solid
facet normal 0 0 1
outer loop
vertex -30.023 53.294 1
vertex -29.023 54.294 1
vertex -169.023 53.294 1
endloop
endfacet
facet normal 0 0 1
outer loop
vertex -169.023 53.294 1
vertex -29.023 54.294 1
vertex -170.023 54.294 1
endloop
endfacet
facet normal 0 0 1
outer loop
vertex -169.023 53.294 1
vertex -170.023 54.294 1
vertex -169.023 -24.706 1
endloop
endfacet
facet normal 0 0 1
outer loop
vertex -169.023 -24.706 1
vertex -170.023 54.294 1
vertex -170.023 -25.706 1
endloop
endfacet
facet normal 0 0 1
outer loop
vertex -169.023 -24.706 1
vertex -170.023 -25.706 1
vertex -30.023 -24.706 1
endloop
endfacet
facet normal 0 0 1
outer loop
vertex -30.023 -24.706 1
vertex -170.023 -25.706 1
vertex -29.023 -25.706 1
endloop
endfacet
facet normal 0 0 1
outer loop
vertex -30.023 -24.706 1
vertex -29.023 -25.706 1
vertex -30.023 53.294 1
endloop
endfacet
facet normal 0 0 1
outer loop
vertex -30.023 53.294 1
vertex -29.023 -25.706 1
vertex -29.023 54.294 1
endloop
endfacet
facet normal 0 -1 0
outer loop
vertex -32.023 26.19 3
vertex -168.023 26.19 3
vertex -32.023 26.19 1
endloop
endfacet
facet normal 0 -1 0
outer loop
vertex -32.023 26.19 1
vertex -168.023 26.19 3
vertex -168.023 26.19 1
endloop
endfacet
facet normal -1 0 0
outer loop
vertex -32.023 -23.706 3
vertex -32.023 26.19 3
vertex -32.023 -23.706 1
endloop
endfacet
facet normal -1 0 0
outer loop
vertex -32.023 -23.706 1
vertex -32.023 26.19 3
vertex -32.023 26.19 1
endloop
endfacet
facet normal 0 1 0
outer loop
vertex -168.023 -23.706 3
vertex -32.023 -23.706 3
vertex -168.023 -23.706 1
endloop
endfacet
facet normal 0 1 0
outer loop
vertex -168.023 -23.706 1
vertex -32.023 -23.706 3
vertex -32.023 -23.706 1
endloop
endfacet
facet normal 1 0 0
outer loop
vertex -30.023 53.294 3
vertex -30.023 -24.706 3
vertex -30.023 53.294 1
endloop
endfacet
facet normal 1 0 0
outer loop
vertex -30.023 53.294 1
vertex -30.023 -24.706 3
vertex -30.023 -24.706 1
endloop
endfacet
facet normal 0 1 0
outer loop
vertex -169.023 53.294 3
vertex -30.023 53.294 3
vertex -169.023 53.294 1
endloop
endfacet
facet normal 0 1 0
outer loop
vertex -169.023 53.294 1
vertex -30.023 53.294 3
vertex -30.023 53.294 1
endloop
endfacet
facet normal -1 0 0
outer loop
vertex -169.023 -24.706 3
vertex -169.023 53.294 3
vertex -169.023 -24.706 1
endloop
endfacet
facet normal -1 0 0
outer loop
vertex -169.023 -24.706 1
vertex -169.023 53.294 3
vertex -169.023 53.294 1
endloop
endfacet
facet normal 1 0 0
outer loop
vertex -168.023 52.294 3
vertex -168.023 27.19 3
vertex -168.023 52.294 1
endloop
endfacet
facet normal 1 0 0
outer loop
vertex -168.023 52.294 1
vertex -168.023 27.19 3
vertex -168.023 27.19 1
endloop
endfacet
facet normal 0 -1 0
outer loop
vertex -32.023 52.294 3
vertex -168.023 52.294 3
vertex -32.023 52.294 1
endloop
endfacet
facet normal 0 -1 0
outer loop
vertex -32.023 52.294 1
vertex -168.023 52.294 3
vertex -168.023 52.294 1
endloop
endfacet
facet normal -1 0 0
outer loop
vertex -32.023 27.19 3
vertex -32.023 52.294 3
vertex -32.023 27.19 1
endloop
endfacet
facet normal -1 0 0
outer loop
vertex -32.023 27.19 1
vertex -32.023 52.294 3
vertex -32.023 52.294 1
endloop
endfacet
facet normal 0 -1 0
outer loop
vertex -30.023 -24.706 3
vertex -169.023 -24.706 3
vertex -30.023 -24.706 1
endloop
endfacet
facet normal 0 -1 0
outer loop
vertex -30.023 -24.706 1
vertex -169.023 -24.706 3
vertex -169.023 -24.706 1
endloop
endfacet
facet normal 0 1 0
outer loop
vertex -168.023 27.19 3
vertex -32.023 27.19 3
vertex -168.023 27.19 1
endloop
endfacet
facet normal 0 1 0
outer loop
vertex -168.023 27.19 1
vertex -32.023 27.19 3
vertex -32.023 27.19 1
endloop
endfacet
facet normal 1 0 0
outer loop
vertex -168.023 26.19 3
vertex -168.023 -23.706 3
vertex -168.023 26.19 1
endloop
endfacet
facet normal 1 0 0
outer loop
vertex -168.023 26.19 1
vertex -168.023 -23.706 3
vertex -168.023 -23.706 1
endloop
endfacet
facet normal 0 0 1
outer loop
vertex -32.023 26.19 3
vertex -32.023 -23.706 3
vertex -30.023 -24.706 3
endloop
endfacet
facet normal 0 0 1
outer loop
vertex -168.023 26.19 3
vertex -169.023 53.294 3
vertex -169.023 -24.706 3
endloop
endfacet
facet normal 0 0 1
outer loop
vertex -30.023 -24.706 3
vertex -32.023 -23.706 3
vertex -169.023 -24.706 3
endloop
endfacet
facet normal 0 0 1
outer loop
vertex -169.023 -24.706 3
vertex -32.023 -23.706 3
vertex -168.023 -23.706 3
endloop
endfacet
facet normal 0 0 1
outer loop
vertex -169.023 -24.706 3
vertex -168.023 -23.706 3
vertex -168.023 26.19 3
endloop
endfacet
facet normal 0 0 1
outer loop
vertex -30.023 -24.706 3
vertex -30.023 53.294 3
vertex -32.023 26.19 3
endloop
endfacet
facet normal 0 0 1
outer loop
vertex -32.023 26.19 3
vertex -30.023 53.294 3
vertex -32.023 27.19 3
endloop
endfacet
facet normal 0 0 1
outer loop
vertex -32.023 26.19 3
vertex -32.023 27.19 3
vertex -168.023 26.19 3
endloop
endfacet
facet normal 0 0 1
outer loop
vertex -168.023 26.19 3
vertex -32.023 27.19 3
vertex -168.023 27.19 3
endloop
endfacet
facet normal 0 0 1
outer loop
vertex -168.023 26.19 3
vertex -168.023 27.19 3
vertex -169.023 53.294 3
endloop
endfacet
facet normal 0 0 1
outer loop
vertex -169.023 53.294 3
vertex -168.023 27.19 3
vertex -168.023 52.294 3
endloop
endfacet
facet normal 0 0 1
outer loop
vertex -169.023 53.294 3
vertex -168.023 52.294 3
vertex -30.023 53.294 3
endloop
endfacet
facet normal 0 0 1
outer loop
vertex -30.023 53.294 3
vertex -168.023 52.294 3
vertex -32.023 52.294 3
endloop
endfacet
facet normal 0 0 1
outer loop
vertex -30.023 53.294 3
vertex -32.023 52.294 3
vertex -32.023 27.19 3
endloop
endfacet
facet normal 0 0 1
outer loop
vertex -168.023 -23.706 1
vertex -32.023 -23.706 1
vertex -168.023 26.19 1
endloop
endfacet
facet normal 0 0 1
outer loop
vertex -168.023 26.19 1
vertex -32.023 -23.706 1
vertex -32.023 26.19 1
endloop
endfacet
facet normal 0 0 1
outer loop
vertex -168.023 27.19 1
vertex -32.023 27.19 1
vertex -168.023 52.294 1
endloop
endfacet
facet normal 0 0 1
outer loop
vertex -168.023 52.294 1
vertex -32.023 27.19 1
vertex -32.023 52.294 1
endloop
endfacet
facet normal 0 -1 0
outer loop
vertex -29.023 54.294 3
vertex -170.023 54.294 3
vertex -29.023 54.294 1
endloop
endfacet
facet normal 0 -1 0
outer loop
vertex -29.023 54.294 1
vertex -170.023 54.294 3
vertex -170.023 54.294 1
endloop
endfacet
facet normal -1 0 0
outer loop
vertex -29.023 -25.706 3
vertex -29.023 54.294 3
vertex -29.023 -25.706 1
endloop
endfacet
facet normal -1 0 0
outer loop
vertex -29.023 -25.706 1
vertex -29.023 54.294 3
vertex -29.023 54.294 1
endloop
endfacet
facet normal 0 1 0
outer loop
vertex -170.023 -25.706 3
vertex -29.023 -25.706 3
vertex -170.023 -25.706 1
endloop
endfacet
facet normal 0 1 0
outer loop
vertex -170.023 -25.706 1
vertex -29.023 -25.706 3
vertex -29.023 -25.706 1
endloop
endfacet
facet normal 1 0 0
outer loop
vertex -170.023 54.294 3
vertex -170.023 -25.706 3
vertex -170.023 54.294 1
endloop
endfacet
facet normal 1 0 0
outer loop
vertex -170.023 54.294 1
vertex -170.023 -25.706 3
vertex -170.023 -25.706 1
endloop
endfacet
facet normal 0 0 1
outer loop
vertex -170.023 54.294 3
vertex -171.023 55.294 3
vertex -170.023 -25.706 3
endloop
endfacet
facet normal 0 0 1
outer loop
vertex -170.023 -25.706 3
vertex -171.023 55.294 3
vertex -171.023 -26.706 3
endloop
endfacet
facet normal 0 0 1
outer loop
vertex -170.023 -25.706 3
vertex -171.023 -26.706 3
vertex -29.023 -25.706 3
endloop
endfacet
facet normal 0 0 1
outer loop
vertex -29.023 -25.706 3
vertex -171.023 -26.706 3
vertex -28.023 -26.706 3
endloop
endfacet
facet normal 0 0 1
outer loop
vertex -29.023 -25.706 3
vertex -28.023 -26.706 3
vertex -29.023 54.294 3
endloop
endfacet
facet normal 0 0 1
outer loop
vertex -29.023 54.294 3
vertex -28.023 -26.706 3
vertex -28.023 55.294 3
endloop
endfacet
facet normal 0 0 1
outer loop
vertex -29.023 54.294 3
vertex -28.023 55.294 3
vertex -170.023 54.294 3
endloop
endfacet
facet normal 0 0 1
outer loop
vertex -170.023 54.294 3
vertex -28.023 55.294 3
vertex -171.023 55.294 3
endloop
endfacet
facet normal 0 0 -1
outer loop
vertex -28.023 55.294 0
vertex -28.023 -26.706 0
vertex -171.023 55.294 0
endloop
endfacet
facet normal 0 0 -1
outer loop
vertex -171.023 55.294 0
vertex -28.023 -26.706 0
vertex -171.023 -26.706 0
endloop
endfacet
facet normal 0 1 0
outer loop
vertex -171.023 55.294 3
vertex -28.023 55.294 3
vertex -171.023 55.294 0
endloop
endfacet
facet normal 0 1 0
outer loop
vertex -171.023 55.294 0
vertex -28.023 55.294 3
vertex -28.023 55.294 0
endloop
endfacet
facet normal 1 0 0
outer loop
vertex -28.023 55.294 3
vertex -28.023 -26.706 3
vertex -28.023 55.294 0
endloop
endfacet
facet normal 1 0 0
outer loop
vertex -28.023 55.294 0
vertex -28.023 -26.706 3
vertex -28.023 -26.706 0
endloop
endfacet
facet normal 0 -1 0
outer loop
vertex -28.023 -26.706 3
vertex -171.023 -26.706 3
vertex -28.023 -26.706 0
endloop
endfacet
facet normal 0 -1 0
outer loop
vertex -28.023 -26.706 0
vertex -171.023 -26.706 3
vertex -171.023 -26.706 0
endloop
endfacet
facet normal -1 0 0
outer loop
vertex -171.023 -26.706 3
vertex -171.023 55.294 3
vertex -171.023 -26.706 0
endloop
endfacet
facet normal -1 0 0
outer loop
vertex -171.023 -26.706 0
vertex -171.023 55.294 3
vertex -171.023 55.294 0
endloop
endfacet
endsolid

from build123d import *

# Parameters (mm, degrees)
CROQUIS1_W              = 143
CROQUIS1_H              = 82
SALIENTE_EXTRUIR1_DEPTH = 1
CROQUIS2_W              = 143
CROQUIS2_H              = 82
CROQUIS2_W_2            = 141
CROQUIS2_H_2            = 80
CROQUIS2_W_3            = 139
CROQUIS2_H_3            = 78
CROQUIS2_W_4            = 136
CROQUIS2_H_4            = 25.104148451
CROQUIS2_H_5            = 49.895851549
SALIENTE_EXTRUIR2_DEPTH = 2


with BuildPart() as part:
    # Croquis1 → Saliente-Extruir1 (new body)
    with BuildSketch(Plane.XY):
        with Locations((-99.522825922, 14.293939394)):
            Rectangle(CROQUIS1_W, CROQUIS1_H)
    extrude(amount=SALIENTE_EXTRUIR1_DEPTH)

    # Croquis2 → Saliente-Extruir2 (add)
    with BuildSketch(Plane.XY.offset(1)):
        with Locations((-99.522825922, 14.293939394)):
            Rectangle(CROQUIS2_W, CROQUIS2_H)
        with Locations((-99.522825922, 14.293939394)):
            Rectangle(CROQUIS2_W_2, CROQUIS2_H_2, mode=Mode.SUBTRACT)
        with Locations((-99.522825922, 14.293939394)):
            Rectangle(CROQUIS2_W_3, CROQUIS2_H_3)
        with Locations((-100.022825922, 39.741865169)):
            Rectangle(CROQUIS2_W_4, CROQUIS2_H_4, mode=Mode.SUBTRACT)
        with Locations((-100.022825922, 1.241865169)):
            Rectangle(CROQUIS2_W_4, CROQUIS2_H_5, mode=Mode.SUBTRACT)
    extrude(amount=SALIENTE_EXTRUIR2_DEPTH)


solid = part.part
